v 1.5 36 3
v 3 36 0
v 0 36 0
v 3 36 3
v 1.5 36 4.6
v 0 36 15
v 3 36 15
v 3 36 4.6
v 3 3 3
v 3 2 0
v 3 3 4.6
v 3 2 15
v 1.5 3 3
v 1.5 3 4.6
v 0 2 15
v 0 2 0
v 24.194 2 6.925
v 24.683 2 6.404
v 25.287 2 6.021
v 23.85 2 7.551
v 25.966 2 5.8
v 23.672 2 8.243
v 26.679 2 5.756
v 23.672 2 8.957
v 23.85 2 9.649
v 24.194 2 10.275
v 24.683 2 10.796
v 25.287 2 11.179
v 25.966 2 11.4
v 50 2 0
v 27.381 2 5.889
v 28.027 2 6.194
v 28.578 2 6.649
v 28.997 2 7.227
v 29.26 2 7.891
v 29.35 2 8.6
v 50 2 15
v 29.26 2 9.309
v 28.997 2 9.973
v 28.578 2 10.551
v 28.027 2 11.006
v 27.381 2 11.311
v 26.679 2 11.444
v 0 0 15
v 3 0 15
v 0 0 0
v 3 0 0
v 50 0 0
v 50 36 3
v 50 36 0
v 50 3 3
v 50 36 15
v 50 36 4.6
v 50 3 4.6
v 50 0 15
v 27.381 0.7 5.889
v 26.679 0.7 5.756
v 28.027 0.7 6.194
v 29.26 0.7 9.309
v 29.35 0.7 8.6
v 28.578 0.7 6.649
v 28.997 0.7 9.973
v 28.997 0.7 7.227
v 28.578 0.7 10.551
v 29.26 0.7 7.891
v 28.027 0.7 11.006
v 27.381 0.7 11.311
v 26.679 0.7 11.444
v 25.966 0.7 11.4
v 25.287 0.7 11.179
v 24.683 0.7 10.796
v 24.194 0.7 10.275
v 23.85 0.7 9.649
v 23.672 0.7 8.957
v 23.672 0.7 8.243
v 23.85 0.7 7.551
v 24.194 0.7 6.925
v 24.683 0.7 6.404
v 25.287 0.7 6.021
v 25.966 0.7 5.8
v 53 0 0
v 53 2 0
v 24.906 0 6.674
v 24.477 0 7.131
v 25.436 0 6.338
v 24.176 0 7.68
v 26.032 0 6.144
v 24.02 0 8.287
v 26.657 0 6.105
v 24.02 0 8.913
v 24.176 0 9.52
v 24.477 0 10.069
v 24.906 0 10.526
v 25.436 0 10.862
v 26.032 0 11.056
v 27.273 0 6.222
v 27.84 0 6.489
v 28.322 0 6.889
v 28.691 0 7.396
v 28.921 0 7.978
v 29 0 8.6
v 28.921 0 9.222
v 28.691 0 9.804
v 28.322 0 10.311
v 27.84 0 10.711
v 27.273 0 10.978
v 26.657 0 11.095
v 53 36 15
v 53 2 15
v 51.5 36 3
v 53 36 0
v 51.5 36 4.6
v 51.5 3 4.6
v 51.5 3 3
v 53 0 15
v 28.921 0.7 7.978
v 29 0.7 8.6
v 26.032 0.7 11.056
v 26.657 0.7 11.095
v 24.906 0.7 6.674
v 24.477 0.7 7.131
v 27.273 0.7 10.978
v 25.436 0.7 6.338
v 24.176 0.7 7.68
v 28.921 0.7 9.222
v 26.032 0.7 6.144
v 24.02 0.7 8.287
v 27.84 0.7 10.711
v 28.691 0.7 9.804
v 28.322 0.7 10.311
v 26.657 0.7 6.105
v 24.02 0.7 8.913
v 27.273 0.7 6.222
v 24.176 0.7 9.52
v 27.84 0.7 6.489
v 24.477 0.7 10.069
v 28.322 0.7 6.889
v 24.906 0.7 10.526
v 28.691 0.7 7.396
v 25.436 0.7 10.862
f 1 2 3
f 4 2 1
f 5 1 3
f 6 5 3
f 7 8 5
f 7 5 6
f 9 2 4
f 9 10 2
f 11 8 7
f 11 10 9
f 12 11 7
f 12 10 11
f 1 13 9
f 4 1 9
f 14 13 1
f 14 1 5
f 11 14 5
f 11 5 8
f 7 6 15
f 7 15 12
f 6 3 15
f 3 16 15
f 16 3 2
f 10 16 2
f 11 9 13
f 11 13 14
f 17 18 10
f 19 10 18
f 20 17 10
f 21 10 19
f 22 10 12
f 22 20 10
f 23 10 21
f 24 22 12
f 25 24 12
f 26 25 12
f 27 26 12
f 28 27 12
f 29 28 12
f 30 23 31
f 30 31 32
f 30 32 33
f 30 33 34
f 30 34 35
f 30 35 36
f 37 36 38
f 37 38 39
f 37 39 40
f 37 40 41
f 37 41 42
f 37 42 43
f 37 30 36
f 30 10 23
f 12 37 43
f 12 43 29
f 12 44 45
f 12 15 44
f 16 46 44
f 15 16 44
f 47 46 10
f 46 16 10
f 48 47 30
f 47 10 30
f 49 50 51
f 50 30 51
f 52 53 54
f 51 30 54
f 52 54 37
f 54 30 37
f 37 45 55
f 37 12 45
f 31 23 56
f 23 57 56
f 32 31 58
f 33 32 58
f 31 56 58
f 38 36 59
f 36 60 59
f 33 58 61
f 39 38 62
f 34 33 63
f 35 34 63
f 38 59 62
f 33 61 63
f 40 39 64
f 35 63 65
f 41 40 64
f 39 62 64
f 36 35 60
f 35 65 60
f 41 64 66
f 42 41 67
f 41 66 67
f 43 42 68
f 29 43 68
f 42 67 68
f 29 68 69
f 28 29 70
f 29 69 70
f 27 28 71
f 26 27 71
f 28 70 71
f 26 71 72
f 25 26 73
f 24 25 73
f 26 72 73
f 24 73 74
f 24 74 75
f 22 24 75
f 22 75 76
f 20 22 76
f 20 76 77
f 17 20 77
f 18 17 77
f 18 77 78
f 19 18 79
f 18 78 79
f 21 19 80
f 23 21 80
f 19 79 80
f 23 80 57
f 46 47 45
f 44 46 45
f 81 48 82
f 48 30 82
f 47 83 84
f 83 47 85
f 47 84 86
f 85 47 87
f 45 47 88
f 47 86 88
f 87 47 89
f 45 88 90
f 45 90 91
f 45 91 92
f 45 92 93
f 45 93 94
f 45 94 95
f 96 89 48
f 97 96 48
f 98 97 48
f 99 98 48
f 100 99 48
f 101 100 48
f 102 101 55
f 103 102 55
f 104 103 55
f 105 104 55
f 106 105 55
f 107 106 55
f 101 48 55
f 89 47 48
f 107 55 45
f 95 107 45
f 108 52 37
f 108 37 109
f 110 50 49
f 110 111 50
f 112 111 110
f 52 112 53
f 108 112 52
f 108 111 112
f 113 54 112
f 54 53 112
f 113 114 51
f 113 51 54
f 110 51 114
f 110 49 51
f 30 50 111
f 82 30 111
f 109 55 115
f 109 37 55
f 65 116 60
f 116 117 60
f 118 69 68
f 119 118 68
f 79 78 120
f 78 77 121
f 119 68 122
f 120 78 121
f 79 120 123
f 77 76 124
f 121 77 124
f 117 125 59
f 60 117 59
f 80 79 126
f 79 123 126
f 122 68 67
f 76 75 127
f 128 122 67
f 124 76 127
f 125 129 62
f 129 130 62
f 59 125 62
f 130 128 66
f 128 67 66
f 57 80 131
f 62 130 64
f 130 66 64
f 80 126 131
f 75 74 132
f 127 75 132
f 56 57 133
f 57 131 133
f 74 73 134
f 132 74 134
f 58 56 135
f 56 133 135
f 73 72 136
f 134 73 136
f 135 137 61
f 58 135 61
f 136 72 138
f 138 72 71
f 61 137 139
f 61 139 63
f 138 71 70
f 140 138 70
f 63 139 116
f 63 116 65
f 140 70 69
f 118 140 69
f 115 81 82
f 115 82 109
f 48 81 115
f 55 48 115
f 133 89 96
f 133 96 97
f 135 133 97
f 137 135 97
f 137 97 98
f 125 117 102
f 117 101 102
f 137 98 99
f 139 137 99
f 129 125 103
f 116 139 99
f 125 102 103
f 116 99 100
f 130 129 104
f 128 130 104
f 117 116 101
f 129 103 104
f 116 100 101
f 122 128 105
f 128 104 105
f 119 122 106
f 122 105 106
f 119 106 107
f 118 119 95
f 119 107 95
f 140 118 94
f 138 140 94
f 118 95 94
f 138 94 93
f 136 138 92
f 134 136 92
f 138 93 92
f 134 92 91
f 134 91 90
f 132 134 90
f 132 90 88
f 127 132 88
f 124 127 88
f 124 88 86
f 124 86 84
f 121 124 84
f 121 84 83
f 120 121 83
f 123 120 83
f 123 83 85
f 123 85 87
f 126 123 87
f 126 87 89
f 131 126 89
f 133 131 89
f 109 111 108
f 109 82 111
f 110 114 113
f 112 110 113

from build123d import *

# Parameters (mm, degrees)
BOX004_W               = 50
BOX004_H               = 33
BOX004_DEPTH           = 1.6
BOX002_W               = 3
BOX002_H               = 36
BOX002_DEPTH           = 15
BOX001_W               = 3
BOX001_H               = 36
BOX001_DEPTH           = 15
CYLINDER001_R          = 2.85
CYLINDER001_DEPTH      = 1.3
CYLINDER001_ROLL_ANGLE = 90
CYLINDER_R             = 2.5
CYLINDER_DEPTH         = 0.7
CYLINDER_ROLL_ANGLE    = 90
BOX003_W               = 53
BOX003_H               = 2
BOX003_DEPTH           = 15


with BuildPart() as pcb:
    # Box004 → Box004 (new body)
    with BuildSketch(Plane(origin=(1.5, 3, 3), x_dir=(1, 0, 0), z_dir=(0, 0, 1))):
        with Locations((25, 16.5)):
            Rectangle(BOX004_W, BOX004_H)
    extrude(amount=BOX004_DEPTH)


with BuildPart() as side2:
    # Box002 → Box002 (new body)
    with BuildSketch(Plane(origin=(50, 0, 0), x_dir=(1, 0, 0), z_dir=(0, 0, 1))):
        with Locations((1.5, 18)):
            Rectangle(BOX002_W, BOX002_H)
    extrude(amount=BOX002_DEPTH)


with BuildPart() as side1:
    # Box001 → Box001 (new body)
    with BuildSketch(Plane.XY):
        with Locations((1.5, 18)):
            Rectangle(BOX001_W, BOX001_H)
    extrude(amount=BOX001_DEPTH)


with BuildPart() as cylinder001:
    # Cylinder001 → Cylinder001 (new body)
    with BuildSketch(Plane.XY):
        Circle(CYLINDER001_R)
    extrude(amount=CYLINDER001_DEPTH)


with BuildPart() as cylinder001_1:
    # Cylinder001 roll: moved
    add(cylinder001.part.rotate(Axis((0, 0, 0), (1, 0, 0)), CYLINDER001_ROLL_ANGLE))


with BuildPart() as cylinder001_2:
    # Cylinder001 placement: moved
    add(cylinder001_1.part.moved(Location((26.5, 2, 8.6))))


with BuildPart() as led:
    # Cylinder → Cylinder (new body)
    with BuildSketch(Plane.XY):
        Circle(CYLINDER_R)
    extrude(amount=CYLINDER_DEPTH)


with BuildPart() as led_1:
    # Cylinder roll: moved
    add(led.part.rotate(Axis((0, 0, 0), (1, 0, 0)), CYLINDER_ROLL_ANGLE))


with BuildPart() as led_2:
    # Cylinder placement: moved
    add(led_1.part.moved(Location((26.5, 0.7, 8.6))))

    # Fusion001: union Cylinder001
    add(cylinder001_2.part)


with BuildPart() as cut001:
    # Box003 → Box003 (new body)
    with BuildSketch(Plane.XY):
        with Locations((26.5, 1)):
            Rectangle(BOX003_W, BOX003_H)
    extrude(amount=BOX003_DEPTH)

    # Cut: cut LED
    add(led_2.part, mode=Mode.SUBTRACT)

    # Fusion: union side2, side1
    add(side2.part)
    add(side1.part)

    # Cut001: cut PCB
    add(pcb.part, mode=Mode.SUBTRACT)


solid = cut001.part
